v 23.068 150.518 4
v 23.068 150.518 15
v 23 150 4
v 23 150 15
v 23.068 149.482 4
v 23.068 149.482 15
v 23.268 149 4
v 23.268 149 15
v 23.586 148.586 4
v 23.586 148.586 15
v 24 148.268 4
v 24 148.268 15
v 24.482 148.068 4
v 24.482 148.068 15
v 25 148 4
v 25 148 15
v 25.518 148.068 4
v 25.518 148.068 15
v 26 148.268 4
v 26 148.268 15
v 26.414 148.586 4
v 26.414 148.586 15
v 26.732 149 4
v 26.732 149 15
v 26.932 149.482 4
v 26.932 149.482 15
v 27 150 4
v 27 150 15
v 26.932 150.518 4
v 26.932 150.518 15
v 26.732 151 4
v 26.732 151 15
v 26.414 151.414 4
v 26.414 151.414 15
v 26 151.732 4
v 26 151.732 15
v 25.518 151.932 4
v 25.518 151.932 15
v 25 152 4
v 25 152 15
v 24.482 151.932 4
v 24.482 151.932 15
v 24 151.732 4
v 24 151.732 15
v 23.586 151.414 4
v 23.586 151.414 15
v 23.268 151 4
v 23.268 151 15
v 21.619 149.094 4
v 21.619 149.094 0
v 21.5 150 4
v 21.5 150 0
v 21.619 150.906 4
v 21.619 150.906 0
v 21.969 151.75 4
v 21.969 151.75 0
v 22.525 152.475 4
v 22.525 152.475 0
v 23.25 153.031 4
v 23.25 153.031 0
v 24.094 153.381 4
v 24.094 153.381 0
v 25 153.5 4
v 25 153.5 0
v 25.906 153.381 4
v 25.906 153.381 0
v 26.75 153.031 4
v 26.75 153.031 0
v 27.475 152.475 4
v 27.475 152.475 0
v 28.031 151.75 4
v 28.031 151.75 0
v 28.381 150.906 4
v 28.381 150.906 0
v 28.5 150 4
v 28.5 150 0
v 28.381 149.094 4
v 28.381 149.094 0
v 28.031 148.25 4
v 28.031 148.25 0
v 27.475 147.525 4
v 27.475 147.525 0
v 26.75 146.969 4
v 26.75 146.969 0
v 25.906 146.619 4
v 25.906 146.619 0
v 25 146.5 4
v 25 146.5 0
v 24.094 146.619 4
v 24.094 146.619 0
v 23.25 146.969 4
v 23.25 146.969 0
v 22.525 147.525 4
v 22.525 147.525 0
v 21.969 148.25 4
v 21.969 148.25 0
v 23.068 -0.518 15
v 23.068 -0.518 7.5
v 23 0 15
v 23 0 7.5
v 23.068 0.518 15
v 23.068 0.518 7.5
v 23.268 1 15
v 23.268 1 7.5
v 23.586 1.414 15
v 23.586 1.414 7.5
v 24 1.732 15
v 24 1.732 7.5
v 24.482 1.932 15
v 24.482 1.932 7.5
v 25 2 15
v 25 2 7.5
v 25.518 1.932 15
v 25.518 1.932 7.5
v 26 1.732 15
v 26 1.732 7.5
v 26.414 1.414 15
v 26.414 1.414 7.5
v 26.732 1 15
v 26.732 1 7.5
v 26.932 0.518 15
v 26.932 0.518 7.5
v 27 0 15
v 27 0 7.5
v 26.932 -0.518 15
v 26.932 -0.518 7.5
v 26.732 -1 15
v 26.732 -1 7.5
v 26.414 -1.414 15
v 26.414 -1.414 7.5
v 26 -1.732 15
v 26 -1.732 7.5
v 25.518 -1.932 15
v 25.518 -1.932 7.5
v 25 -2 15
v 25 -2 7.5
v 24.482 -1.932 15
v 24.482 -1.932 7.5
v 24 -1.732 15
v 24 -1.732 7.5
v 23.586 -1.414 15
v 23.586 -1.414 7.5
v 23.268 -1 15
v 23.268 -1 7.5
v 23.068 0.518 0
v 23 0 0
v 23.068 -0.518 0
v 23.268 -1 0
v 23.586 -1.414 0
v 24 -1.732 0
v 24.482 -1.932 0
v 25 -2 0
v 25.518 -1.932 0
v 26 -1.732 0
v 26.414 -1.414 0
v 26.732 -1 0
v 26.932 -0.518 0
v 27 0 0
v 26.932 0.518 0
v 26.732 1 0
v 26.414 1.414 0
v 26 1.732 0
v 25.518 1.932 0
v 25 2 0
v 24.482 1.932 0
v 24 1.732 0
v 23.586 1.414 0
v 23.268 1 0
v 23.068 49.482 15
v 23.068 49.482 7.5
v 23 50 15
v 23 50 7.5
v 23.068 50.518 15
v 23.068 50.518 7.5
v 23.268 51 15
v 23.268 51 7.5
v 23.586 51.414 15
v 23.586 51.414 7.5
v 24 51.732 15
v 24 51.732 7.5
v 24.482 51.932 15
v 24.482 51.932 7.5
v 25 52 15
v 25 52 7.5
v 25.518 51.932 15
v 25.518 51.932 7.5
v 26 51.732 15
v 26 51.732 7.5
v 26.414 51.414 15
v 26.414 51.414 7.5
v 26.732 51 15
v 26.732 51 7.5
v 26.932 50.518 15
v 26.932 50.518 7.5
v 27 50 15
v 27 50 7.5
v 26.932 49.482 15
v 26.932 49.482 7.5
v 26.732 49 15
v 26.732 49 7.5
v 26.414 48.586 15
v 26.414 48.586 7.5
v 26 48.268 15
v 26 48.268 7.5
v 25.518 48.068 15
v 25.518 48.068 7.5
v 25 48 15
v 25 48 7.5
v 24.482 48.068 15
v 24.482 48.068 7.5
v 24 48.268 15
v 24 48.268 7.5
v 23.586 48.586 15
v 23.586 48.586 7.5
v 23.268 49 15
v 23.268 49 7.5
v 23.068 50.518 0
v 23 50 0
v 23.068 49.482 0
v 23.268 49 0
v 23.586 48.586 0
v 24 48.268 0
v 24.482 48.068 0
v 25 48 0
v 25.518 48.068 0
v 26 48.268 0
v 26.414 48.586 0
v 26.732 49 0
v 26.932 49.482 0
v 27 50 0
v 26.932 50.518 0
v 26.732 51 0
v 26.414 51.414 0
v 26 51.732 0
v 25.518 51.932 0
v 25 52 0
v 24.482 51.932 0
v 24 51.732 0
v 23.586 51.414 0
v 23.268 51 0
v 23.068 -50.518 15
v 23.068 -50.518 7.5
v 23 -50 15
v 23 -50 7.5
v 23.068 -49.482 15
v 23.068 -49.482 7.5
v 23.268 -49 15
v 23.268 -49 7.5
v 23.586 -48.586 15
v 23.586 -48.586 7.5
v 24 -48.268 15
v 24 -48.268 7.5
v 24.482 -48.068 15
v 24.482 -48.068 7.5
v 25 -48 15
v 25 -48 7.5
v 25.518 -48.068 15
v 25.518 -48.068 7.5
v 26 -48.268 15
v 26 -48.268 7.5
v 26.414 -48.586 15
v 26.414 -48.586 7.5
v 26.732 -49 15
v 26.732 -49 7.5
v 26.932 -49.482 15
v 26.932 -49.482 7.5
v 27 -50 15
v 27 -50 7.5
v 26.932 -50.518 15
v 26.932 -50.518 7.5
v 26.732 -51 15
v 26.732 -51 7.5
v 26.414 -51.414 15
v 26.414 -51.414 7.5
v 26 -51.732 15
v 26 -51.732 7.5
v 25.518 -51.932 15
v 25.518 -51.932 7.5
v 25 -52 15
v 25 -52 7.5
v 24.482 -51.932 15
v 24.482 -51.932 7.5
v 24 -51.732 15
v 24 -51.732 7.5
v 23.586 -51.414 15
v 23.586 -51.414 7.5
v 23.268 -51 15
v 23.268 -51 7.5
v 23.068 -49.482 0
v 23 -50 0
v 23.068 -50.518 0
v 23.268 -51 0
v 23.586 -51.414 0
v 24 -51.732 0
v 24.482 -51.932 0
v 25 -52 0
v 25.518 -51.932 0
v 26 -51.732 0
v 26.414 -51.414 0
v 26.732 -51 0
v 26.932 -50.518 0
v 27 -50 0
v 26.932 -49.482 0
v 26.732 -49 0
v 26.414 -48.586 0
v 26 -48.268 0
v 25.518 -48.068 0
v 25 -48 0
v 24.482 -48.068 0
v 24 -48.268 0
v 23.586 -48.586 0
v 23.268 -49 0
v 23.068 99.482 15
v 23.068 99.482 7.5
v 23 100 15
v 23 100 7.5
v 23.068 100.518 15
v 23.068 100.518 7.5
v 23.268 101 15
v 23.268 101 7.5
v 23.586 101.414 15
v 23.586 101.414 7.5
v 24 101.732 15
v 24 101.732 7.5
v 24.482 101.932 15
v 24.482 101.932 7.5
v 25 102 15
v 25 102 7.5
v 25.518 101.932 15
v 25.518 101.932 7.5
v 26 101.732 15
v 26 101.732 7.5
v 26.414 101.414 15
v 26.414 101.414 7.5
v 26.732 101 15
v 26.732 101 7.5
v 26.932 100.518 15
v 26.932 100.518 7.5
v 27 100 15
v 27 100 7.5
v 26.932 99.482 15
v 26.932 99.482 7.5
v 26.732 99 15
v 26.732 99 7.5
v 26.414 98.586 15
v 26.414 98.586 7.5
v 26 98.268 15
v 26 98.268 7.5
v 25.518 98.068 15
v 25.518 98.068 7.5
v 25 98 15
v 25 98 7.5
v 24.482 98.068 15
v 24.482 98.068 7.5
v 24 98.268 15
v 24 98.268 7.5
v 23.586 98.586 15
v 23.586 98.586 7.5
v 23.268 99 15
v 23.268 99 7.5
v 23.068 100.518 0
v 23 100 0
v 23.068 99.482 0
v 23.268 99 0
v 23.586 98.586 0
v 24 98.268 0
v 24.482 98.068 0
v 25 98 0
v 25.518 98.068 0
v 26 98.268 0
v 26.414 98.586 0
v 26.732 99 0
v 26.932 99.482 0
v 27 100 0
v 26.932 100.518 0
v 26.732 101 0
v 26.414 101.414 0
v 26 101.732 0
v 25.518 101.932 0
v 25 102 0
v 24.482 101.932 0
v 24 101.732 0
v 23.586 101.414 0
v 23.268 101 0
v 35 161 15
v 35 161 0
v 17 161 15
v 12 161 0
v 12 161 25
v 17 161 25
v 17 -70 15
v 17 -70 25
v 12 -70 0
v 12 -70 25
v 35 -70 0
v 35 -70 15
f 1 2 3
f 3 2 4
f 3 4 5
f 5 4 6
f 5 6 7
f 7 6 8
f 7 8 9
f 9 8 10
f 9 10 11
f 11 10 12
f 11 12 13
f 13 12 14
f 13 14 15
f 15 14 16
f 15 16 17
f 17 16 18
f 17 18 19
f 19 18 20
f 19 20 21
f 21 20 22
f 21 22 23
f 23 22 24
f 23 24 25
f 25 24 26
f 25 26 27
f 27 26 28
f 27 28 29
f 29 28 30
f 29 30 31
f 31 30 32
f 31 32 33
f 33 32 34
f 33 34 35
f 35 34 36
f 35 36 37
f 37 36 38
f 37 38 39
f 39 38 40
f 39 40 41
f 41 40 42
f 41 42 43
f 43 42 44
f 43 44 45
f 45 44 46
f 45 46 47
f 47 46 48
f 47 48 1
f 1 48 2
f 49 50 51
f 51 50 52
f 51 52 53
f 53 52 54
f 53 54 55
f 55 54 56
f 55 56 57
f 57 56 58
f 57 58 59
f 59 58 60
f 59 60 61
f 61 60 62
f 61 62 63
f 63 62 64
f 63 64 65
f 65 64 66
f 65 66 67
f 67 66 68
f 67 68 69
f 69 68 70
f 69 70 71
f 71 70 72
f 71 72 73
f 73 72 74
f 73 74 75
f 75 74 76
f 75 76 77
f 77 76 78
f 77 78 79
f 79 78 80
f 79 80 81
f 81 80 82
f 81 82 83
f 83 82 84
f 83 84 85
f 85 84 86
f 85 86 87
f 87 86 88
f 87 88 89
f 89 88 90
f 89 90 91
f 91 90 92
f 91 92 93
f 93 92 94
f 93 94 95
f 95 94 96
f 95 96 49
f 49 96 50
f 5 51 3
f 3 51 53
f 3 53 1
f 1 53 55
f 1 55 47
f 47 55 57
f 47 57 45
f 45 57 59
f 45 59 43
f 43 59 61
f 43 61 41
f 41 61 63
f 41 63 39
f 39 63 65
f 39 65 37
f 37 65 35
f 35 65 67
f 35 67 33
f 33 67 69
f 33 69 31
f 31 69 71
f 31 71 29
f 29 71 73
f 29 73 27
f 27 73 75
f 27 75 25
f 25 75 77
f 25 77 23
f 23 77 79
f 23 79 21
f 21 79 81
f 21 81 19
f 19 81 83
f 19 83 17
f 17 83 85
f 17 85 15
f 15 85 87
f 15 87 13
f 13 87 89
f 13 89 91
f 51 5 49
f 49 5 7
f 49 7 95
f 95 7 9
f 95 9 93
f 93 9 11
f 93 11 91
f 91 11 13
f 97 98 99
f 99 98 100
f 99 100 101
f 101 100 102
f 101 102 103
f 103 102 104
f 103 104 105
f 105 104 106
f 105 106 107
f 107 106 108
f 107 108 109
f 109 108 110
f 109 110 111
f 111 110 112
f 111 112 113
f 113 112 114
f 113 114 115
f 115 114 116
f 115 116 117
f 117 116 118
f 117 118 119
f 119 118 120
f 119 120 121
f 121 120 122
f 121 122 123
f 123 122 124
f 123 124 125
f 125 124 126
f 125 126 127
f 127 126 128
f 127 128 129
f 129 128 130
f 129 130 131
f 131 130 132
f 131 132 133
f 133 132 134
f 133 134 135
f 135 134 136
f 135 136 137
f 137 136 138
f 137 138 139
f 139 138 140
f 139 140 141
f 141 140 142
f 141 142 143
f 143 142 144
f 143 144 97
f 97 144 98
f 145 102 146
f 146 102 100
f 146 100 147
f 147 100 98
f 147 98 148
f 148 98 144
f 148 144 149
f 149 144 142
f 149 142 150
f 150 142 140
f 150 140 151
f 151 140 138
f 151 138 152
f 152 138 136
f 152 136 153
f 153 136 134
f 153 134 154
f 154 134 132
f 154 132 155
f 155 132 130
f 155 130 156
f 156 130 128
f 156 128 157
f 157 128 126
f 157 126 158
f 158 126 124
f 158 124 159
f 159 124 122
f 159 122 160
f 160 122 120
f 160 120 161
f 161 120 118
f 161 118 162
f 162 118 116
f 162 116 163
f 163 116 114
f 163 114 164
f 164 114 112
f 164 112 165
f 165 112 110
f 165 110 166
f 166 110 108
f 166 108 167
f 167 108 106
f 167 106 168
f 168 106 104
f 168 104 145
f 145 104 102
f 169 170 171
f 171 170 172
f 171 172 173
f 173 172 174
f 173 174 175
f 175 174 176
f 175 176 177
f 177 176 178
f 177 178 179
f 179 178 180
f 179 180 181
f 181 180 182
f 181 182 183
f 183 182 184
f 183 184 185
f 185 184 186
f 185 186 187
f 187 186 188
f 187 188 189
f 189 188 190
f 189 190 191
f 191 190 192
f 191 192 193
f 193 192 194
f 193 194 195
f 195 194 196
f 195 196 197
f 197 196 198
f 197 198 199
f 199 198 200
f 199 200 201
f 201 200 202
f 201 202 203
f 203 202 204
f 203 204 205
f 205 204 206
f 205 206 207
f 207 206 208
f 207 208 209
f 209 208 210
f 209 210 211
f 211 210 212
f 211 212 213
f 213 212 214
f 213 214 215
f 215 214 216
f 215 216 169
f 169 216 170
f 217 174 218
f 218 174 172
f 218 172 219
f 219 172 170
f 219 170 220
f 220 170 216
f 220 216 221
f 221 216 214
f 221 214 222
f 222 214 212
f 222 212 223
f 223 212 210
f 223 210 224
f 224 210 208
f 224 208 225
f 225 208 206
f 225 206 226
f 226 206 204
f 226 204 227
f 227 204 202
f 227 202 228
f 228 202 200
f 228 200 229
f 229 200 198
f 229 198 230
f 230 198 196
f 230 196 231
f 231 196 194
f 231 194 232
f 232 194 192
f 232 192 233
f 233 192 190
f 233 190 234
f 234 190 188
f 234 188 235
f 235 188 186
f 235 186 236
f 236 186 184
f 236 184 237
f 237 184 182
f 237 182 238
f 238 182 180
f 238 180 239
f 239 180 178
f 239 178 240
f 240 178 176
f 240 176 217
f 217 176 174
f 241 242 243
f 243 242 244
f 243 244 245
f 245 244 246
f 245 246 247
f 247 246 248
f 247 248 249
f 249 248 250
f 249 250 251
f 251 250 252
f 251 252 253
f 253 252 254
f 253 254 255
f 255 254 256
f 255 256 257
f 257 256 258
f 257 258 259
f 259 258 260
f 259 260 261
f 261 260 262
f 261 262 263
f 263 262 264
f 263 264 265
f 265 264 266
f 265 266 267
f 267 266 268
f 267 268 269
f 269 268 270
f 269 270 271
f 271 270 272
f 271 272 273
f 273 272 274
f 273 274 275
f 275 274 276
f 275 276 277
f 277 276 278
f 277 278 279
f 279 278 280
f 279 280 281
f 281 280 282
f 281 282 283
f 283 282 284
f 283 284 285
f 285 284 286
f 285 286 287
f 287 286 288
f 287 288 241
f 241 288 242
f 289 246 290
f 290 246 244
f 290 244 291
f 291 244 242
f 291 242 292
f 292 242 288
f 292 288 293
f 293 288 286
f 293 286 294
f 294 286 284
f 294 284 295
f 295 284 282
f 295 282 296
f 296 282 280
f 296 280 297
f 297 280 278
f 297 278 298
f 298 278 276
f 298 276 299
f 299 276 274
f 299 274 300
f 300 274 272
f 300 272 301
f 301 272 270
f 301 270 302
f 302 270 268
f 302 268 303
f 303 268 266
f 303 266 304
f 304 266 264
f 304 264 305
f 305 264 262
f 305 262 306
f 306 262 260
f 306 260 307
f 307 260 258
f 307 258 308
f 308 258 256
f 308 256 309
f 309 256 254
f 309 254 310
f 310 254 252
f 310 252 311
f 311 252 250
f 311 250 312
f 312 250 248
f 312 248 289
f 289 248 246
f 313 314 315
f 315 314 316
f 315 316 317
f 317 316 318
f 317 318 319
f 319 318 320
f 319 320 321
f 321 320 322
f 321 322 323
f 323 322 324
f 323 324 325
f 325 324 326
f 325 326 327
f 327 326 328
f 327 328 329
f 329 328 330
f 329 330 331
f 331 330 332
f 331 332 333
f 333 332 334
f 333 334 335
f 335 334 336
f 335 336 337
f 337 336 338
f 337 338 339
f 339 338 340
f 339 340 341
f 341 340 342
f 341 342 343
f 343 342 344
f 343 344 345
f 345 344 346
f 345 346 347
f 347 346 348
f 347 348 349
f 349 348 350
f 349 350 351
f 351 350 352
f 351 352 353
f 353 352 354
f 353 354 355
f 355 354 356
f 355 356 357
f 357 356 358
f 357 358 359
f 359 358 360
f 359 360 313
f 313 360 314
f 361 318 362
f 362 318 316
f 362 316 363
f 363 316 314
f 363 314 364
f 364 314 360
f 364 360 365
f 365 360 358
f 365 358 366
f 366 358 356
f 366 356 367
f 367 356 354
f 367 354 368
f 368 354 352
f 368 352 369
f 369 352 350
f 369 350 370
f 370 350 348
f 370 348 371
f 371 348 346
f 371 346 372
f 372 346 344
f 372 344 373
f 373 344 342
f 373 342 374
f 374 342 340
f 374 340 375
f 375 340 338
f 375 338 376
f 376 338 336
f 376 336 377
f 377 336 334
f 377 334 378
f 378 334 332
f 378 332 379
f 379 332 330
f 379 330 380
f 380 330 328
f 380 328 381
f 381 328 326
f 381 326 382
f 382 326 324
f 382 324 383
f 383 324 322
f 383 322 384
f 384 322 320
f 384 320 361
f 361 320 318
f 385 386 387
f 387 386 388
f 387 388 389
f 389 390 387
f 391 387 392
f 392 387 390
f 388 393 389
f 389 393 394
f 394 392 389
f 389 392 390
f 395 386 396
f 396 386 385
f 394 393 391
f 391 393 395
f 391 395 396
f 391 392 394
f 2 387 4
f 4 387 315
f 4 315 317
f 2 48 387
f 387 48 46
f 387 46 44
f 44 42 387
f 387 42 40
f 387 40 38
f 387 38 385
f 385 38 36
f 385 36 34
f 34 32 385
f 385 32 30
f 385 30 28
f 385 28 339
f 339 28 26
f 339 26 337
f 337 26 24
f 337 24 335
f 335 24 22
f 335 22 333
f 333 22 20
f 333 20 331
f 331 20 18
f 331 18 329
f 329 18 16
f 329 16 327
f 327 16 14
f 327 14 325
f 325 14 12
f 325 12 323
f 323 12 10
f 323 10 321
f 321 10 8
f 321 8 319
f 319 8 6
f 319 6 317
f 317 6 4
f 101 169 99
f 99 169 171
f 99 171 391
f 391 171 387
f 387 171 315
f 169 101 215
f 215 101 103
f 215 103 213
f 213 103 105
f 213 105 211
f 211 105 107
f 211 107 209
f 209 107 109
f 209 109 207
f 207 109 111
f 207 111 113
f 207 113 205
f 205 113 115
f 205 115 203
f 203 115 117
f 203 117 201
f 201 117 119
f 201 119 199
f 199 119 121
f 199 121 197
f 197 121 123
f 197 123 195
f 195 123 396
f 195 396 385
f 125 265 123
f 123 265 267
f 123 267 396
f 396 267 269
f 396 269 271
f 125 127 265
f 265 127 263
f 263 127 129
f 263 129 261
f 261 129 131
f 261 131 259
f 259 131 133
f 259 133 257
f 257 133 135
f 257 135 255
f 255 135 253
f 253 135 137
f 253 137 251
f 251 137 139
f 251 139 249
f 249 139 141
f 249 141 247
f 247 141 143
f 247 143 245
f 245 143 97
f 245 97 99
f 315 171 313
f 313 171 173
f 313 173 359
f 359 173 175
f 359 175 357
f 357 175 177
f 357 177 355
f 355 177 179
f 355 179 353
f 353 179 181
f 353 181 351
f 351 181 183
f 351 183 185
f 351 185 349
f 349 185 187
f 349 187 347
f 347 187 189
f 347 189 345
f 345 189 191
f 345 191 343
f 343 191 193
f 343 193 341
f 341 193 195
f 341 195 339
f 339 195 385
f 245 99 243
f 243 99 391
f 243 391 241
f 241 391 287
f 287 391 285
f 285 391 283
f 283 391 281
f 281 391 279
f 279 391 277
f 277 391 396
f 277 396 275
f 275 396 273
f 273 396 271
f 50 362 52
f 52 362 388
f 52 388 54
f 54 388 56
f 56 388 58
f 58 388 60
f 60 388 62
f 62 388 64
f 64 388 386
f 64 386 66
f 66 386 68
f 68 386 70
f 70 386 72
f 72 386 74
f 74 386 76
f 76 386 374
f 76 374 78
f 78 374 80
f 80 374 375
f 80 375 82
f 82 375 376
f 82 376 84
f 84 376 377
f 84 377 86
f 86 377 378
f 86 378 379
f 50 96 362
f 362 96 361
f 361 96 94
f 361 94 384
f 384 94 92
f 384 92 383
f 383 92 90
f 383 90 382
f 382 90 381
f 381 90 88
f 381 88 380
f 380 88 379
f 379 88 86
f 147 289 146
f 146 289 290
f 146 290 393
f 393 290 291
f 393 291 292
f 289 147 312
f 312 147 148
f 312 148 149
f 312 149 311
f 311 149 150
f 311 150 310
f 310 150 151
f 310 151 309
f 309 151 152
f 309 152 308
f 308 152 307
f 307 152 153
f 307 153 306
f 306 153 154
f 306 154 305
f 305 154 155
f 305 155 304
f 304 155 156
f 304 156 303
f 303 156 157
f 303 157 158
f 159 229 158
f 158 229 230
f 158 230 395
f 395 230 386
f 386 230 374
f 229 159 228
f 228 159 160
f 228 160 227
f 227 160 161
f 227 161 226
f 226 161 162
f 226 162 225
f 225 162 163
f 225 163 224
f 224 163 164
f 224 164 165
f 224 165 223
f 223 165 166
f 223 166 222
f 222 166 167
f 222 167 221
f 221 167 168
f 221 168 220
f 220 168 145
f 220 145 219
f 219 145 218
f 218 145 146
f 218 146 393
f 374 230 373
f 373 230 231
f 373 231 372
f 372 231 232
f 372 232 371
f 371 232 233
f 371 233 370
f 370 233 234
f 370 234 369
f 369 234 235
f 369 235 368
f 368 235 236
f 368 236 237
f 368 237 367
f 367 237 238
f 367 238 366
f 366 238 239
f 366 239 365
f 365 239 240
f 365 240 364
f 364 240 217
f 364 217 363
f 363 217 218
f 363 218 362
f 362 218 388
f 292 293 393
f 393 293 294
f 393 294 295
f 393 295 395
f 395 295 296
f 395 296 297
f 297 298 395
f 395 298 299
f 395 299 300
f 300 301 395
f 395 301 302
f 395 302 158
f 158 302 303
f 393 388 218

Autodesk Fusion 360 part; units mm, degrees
sketch "Szkic1" plane through (0, 0, 0) normal (0, 0, 1) x (1, 0, 0)
  line L0 (29, -110) -> (29, -70)
  line L1 (-10, -75) -> (10, -75)
  line L2 (10, -75) -> (10, -98.8)
  line L3 (-45, -110) -> (29, -110)
  circle A0 centre (15, -80) radius 3.5
  circle A1 centre (15, -100) radius 3.5
  line L4 (-10, -98.8) -> (-10, -75)
  line L5 (10, -98.8) -> (-10, -98.8)
  circle A2 centre (-20, -100) radius 3.5
  circle A3 centre (-20, -80) radius 3.5
  line L6 (29, -70) -> (35, -70)
  line L7 (35, -70) -> (35, 160)
  circle A4 centre (25, -50) radius 1.75
  circle A5 centre (25, 0) radius 1.75
  circle A6 centre (25, 50) radius 1.75
  circle A7 centre (25, 100) radius 1.75
  line L8 (35, 160) -> (-45, 160)
  circle A8 centre (25, 150) radius 1.75
  circle A9 centre (-25, 150) radius 1.75
  line L9 (35, 160) -> (35, 135)
  line L10 (35, 135) -> (-45, 135)
  line L11 (-45, 135) -> (-45, 160)
  line L12 (-45, 160) -> (35, 160)
  line L13 (35, 135) -> (35, -70)
  line L14 (35, -70) -> (17, -70)
  line L15 (17, -70) -> (17, 135)
  line L16 (17, 135) -> (35, 135)
  line L17 (17, 135) -> (17, -70)
  line L18 (17, -70) -> (12, -70)
  line L19 (12, -70) -> (12, 135)
  line L20 (12, 135) -> (17, 135)
  dimension "d1" = 25
  dimension "d2" = 18
  dimension "d3" = 5
extrude "Wyciągnięcie proste1" add sketch "Szkic1" along normal blind 15 contours L6 L7 L10 L13 L14 L15 L16 L17
extrude "Wyciągnięcie proste2" add sketch "Szkic1" along normal blind 25 contours L10 L15 L17 L18 L19 L20
extrude "Wyciągnięcie proste3" add 1 faces at (21.3333, 135, 5) along direction (0, 1, 0) blind 26
extrude "Wyciągnięcie proste4" cut sketch "Szkic1" along normal blind 27 contours A8
sketch "Szkic2" plane through (0, 0, 0) normal (0, 0, -1) x (1, 0, 0)
  circle A0 centre (25, -150) radius 1.75
  circle A1 centre (25, -50) radius 1.75
  circle A2 centre (25, -100) radius 1.75
  circle A3 centre (25, 0) radius 1.75
  circle A4 centre (25, 50) radius 1.75
  line L0 (35, -161) -> (35, 70)
  line L1 (35, 70) -> (12, 70)
  line L2 (12, 70) -> (12, -161)
  line L3 (12, -161) -> (35, -161)
  circle A5 centre (25, -150) radius 3.5
  circle A6 centre (25, -100) radius 2
  circle A7 centre (25, -50) radius 2
  circle A8 centre (25, 0) radius 2
  circle A9 centre (25, 50) radius 2
  dimension "d12" = 7
  dimension "d13" = 4
  dimension "d14" = 4
  dimension "d15" = 4
  dimension "d16" = 4
extrude "Wyciągnięcie proste5" cut sketch "Szkic2" against normal blind 100 contours A6 | A7 | A8 | A9
extrude "Wyciągnięcie proste6" cut sketch "Szkic2" against normal blind 4 contours A5
sketch "Szkic3" plane through (0, 0, 0) normal (0, 0, -1) x (1, 0, 0)
  circle A0 centre (25, -150) radius 2
  dimension "d21" = 4
extrude "Wyciągnięcie proste7" cut sketch "Szkic3" against normal blind 100
